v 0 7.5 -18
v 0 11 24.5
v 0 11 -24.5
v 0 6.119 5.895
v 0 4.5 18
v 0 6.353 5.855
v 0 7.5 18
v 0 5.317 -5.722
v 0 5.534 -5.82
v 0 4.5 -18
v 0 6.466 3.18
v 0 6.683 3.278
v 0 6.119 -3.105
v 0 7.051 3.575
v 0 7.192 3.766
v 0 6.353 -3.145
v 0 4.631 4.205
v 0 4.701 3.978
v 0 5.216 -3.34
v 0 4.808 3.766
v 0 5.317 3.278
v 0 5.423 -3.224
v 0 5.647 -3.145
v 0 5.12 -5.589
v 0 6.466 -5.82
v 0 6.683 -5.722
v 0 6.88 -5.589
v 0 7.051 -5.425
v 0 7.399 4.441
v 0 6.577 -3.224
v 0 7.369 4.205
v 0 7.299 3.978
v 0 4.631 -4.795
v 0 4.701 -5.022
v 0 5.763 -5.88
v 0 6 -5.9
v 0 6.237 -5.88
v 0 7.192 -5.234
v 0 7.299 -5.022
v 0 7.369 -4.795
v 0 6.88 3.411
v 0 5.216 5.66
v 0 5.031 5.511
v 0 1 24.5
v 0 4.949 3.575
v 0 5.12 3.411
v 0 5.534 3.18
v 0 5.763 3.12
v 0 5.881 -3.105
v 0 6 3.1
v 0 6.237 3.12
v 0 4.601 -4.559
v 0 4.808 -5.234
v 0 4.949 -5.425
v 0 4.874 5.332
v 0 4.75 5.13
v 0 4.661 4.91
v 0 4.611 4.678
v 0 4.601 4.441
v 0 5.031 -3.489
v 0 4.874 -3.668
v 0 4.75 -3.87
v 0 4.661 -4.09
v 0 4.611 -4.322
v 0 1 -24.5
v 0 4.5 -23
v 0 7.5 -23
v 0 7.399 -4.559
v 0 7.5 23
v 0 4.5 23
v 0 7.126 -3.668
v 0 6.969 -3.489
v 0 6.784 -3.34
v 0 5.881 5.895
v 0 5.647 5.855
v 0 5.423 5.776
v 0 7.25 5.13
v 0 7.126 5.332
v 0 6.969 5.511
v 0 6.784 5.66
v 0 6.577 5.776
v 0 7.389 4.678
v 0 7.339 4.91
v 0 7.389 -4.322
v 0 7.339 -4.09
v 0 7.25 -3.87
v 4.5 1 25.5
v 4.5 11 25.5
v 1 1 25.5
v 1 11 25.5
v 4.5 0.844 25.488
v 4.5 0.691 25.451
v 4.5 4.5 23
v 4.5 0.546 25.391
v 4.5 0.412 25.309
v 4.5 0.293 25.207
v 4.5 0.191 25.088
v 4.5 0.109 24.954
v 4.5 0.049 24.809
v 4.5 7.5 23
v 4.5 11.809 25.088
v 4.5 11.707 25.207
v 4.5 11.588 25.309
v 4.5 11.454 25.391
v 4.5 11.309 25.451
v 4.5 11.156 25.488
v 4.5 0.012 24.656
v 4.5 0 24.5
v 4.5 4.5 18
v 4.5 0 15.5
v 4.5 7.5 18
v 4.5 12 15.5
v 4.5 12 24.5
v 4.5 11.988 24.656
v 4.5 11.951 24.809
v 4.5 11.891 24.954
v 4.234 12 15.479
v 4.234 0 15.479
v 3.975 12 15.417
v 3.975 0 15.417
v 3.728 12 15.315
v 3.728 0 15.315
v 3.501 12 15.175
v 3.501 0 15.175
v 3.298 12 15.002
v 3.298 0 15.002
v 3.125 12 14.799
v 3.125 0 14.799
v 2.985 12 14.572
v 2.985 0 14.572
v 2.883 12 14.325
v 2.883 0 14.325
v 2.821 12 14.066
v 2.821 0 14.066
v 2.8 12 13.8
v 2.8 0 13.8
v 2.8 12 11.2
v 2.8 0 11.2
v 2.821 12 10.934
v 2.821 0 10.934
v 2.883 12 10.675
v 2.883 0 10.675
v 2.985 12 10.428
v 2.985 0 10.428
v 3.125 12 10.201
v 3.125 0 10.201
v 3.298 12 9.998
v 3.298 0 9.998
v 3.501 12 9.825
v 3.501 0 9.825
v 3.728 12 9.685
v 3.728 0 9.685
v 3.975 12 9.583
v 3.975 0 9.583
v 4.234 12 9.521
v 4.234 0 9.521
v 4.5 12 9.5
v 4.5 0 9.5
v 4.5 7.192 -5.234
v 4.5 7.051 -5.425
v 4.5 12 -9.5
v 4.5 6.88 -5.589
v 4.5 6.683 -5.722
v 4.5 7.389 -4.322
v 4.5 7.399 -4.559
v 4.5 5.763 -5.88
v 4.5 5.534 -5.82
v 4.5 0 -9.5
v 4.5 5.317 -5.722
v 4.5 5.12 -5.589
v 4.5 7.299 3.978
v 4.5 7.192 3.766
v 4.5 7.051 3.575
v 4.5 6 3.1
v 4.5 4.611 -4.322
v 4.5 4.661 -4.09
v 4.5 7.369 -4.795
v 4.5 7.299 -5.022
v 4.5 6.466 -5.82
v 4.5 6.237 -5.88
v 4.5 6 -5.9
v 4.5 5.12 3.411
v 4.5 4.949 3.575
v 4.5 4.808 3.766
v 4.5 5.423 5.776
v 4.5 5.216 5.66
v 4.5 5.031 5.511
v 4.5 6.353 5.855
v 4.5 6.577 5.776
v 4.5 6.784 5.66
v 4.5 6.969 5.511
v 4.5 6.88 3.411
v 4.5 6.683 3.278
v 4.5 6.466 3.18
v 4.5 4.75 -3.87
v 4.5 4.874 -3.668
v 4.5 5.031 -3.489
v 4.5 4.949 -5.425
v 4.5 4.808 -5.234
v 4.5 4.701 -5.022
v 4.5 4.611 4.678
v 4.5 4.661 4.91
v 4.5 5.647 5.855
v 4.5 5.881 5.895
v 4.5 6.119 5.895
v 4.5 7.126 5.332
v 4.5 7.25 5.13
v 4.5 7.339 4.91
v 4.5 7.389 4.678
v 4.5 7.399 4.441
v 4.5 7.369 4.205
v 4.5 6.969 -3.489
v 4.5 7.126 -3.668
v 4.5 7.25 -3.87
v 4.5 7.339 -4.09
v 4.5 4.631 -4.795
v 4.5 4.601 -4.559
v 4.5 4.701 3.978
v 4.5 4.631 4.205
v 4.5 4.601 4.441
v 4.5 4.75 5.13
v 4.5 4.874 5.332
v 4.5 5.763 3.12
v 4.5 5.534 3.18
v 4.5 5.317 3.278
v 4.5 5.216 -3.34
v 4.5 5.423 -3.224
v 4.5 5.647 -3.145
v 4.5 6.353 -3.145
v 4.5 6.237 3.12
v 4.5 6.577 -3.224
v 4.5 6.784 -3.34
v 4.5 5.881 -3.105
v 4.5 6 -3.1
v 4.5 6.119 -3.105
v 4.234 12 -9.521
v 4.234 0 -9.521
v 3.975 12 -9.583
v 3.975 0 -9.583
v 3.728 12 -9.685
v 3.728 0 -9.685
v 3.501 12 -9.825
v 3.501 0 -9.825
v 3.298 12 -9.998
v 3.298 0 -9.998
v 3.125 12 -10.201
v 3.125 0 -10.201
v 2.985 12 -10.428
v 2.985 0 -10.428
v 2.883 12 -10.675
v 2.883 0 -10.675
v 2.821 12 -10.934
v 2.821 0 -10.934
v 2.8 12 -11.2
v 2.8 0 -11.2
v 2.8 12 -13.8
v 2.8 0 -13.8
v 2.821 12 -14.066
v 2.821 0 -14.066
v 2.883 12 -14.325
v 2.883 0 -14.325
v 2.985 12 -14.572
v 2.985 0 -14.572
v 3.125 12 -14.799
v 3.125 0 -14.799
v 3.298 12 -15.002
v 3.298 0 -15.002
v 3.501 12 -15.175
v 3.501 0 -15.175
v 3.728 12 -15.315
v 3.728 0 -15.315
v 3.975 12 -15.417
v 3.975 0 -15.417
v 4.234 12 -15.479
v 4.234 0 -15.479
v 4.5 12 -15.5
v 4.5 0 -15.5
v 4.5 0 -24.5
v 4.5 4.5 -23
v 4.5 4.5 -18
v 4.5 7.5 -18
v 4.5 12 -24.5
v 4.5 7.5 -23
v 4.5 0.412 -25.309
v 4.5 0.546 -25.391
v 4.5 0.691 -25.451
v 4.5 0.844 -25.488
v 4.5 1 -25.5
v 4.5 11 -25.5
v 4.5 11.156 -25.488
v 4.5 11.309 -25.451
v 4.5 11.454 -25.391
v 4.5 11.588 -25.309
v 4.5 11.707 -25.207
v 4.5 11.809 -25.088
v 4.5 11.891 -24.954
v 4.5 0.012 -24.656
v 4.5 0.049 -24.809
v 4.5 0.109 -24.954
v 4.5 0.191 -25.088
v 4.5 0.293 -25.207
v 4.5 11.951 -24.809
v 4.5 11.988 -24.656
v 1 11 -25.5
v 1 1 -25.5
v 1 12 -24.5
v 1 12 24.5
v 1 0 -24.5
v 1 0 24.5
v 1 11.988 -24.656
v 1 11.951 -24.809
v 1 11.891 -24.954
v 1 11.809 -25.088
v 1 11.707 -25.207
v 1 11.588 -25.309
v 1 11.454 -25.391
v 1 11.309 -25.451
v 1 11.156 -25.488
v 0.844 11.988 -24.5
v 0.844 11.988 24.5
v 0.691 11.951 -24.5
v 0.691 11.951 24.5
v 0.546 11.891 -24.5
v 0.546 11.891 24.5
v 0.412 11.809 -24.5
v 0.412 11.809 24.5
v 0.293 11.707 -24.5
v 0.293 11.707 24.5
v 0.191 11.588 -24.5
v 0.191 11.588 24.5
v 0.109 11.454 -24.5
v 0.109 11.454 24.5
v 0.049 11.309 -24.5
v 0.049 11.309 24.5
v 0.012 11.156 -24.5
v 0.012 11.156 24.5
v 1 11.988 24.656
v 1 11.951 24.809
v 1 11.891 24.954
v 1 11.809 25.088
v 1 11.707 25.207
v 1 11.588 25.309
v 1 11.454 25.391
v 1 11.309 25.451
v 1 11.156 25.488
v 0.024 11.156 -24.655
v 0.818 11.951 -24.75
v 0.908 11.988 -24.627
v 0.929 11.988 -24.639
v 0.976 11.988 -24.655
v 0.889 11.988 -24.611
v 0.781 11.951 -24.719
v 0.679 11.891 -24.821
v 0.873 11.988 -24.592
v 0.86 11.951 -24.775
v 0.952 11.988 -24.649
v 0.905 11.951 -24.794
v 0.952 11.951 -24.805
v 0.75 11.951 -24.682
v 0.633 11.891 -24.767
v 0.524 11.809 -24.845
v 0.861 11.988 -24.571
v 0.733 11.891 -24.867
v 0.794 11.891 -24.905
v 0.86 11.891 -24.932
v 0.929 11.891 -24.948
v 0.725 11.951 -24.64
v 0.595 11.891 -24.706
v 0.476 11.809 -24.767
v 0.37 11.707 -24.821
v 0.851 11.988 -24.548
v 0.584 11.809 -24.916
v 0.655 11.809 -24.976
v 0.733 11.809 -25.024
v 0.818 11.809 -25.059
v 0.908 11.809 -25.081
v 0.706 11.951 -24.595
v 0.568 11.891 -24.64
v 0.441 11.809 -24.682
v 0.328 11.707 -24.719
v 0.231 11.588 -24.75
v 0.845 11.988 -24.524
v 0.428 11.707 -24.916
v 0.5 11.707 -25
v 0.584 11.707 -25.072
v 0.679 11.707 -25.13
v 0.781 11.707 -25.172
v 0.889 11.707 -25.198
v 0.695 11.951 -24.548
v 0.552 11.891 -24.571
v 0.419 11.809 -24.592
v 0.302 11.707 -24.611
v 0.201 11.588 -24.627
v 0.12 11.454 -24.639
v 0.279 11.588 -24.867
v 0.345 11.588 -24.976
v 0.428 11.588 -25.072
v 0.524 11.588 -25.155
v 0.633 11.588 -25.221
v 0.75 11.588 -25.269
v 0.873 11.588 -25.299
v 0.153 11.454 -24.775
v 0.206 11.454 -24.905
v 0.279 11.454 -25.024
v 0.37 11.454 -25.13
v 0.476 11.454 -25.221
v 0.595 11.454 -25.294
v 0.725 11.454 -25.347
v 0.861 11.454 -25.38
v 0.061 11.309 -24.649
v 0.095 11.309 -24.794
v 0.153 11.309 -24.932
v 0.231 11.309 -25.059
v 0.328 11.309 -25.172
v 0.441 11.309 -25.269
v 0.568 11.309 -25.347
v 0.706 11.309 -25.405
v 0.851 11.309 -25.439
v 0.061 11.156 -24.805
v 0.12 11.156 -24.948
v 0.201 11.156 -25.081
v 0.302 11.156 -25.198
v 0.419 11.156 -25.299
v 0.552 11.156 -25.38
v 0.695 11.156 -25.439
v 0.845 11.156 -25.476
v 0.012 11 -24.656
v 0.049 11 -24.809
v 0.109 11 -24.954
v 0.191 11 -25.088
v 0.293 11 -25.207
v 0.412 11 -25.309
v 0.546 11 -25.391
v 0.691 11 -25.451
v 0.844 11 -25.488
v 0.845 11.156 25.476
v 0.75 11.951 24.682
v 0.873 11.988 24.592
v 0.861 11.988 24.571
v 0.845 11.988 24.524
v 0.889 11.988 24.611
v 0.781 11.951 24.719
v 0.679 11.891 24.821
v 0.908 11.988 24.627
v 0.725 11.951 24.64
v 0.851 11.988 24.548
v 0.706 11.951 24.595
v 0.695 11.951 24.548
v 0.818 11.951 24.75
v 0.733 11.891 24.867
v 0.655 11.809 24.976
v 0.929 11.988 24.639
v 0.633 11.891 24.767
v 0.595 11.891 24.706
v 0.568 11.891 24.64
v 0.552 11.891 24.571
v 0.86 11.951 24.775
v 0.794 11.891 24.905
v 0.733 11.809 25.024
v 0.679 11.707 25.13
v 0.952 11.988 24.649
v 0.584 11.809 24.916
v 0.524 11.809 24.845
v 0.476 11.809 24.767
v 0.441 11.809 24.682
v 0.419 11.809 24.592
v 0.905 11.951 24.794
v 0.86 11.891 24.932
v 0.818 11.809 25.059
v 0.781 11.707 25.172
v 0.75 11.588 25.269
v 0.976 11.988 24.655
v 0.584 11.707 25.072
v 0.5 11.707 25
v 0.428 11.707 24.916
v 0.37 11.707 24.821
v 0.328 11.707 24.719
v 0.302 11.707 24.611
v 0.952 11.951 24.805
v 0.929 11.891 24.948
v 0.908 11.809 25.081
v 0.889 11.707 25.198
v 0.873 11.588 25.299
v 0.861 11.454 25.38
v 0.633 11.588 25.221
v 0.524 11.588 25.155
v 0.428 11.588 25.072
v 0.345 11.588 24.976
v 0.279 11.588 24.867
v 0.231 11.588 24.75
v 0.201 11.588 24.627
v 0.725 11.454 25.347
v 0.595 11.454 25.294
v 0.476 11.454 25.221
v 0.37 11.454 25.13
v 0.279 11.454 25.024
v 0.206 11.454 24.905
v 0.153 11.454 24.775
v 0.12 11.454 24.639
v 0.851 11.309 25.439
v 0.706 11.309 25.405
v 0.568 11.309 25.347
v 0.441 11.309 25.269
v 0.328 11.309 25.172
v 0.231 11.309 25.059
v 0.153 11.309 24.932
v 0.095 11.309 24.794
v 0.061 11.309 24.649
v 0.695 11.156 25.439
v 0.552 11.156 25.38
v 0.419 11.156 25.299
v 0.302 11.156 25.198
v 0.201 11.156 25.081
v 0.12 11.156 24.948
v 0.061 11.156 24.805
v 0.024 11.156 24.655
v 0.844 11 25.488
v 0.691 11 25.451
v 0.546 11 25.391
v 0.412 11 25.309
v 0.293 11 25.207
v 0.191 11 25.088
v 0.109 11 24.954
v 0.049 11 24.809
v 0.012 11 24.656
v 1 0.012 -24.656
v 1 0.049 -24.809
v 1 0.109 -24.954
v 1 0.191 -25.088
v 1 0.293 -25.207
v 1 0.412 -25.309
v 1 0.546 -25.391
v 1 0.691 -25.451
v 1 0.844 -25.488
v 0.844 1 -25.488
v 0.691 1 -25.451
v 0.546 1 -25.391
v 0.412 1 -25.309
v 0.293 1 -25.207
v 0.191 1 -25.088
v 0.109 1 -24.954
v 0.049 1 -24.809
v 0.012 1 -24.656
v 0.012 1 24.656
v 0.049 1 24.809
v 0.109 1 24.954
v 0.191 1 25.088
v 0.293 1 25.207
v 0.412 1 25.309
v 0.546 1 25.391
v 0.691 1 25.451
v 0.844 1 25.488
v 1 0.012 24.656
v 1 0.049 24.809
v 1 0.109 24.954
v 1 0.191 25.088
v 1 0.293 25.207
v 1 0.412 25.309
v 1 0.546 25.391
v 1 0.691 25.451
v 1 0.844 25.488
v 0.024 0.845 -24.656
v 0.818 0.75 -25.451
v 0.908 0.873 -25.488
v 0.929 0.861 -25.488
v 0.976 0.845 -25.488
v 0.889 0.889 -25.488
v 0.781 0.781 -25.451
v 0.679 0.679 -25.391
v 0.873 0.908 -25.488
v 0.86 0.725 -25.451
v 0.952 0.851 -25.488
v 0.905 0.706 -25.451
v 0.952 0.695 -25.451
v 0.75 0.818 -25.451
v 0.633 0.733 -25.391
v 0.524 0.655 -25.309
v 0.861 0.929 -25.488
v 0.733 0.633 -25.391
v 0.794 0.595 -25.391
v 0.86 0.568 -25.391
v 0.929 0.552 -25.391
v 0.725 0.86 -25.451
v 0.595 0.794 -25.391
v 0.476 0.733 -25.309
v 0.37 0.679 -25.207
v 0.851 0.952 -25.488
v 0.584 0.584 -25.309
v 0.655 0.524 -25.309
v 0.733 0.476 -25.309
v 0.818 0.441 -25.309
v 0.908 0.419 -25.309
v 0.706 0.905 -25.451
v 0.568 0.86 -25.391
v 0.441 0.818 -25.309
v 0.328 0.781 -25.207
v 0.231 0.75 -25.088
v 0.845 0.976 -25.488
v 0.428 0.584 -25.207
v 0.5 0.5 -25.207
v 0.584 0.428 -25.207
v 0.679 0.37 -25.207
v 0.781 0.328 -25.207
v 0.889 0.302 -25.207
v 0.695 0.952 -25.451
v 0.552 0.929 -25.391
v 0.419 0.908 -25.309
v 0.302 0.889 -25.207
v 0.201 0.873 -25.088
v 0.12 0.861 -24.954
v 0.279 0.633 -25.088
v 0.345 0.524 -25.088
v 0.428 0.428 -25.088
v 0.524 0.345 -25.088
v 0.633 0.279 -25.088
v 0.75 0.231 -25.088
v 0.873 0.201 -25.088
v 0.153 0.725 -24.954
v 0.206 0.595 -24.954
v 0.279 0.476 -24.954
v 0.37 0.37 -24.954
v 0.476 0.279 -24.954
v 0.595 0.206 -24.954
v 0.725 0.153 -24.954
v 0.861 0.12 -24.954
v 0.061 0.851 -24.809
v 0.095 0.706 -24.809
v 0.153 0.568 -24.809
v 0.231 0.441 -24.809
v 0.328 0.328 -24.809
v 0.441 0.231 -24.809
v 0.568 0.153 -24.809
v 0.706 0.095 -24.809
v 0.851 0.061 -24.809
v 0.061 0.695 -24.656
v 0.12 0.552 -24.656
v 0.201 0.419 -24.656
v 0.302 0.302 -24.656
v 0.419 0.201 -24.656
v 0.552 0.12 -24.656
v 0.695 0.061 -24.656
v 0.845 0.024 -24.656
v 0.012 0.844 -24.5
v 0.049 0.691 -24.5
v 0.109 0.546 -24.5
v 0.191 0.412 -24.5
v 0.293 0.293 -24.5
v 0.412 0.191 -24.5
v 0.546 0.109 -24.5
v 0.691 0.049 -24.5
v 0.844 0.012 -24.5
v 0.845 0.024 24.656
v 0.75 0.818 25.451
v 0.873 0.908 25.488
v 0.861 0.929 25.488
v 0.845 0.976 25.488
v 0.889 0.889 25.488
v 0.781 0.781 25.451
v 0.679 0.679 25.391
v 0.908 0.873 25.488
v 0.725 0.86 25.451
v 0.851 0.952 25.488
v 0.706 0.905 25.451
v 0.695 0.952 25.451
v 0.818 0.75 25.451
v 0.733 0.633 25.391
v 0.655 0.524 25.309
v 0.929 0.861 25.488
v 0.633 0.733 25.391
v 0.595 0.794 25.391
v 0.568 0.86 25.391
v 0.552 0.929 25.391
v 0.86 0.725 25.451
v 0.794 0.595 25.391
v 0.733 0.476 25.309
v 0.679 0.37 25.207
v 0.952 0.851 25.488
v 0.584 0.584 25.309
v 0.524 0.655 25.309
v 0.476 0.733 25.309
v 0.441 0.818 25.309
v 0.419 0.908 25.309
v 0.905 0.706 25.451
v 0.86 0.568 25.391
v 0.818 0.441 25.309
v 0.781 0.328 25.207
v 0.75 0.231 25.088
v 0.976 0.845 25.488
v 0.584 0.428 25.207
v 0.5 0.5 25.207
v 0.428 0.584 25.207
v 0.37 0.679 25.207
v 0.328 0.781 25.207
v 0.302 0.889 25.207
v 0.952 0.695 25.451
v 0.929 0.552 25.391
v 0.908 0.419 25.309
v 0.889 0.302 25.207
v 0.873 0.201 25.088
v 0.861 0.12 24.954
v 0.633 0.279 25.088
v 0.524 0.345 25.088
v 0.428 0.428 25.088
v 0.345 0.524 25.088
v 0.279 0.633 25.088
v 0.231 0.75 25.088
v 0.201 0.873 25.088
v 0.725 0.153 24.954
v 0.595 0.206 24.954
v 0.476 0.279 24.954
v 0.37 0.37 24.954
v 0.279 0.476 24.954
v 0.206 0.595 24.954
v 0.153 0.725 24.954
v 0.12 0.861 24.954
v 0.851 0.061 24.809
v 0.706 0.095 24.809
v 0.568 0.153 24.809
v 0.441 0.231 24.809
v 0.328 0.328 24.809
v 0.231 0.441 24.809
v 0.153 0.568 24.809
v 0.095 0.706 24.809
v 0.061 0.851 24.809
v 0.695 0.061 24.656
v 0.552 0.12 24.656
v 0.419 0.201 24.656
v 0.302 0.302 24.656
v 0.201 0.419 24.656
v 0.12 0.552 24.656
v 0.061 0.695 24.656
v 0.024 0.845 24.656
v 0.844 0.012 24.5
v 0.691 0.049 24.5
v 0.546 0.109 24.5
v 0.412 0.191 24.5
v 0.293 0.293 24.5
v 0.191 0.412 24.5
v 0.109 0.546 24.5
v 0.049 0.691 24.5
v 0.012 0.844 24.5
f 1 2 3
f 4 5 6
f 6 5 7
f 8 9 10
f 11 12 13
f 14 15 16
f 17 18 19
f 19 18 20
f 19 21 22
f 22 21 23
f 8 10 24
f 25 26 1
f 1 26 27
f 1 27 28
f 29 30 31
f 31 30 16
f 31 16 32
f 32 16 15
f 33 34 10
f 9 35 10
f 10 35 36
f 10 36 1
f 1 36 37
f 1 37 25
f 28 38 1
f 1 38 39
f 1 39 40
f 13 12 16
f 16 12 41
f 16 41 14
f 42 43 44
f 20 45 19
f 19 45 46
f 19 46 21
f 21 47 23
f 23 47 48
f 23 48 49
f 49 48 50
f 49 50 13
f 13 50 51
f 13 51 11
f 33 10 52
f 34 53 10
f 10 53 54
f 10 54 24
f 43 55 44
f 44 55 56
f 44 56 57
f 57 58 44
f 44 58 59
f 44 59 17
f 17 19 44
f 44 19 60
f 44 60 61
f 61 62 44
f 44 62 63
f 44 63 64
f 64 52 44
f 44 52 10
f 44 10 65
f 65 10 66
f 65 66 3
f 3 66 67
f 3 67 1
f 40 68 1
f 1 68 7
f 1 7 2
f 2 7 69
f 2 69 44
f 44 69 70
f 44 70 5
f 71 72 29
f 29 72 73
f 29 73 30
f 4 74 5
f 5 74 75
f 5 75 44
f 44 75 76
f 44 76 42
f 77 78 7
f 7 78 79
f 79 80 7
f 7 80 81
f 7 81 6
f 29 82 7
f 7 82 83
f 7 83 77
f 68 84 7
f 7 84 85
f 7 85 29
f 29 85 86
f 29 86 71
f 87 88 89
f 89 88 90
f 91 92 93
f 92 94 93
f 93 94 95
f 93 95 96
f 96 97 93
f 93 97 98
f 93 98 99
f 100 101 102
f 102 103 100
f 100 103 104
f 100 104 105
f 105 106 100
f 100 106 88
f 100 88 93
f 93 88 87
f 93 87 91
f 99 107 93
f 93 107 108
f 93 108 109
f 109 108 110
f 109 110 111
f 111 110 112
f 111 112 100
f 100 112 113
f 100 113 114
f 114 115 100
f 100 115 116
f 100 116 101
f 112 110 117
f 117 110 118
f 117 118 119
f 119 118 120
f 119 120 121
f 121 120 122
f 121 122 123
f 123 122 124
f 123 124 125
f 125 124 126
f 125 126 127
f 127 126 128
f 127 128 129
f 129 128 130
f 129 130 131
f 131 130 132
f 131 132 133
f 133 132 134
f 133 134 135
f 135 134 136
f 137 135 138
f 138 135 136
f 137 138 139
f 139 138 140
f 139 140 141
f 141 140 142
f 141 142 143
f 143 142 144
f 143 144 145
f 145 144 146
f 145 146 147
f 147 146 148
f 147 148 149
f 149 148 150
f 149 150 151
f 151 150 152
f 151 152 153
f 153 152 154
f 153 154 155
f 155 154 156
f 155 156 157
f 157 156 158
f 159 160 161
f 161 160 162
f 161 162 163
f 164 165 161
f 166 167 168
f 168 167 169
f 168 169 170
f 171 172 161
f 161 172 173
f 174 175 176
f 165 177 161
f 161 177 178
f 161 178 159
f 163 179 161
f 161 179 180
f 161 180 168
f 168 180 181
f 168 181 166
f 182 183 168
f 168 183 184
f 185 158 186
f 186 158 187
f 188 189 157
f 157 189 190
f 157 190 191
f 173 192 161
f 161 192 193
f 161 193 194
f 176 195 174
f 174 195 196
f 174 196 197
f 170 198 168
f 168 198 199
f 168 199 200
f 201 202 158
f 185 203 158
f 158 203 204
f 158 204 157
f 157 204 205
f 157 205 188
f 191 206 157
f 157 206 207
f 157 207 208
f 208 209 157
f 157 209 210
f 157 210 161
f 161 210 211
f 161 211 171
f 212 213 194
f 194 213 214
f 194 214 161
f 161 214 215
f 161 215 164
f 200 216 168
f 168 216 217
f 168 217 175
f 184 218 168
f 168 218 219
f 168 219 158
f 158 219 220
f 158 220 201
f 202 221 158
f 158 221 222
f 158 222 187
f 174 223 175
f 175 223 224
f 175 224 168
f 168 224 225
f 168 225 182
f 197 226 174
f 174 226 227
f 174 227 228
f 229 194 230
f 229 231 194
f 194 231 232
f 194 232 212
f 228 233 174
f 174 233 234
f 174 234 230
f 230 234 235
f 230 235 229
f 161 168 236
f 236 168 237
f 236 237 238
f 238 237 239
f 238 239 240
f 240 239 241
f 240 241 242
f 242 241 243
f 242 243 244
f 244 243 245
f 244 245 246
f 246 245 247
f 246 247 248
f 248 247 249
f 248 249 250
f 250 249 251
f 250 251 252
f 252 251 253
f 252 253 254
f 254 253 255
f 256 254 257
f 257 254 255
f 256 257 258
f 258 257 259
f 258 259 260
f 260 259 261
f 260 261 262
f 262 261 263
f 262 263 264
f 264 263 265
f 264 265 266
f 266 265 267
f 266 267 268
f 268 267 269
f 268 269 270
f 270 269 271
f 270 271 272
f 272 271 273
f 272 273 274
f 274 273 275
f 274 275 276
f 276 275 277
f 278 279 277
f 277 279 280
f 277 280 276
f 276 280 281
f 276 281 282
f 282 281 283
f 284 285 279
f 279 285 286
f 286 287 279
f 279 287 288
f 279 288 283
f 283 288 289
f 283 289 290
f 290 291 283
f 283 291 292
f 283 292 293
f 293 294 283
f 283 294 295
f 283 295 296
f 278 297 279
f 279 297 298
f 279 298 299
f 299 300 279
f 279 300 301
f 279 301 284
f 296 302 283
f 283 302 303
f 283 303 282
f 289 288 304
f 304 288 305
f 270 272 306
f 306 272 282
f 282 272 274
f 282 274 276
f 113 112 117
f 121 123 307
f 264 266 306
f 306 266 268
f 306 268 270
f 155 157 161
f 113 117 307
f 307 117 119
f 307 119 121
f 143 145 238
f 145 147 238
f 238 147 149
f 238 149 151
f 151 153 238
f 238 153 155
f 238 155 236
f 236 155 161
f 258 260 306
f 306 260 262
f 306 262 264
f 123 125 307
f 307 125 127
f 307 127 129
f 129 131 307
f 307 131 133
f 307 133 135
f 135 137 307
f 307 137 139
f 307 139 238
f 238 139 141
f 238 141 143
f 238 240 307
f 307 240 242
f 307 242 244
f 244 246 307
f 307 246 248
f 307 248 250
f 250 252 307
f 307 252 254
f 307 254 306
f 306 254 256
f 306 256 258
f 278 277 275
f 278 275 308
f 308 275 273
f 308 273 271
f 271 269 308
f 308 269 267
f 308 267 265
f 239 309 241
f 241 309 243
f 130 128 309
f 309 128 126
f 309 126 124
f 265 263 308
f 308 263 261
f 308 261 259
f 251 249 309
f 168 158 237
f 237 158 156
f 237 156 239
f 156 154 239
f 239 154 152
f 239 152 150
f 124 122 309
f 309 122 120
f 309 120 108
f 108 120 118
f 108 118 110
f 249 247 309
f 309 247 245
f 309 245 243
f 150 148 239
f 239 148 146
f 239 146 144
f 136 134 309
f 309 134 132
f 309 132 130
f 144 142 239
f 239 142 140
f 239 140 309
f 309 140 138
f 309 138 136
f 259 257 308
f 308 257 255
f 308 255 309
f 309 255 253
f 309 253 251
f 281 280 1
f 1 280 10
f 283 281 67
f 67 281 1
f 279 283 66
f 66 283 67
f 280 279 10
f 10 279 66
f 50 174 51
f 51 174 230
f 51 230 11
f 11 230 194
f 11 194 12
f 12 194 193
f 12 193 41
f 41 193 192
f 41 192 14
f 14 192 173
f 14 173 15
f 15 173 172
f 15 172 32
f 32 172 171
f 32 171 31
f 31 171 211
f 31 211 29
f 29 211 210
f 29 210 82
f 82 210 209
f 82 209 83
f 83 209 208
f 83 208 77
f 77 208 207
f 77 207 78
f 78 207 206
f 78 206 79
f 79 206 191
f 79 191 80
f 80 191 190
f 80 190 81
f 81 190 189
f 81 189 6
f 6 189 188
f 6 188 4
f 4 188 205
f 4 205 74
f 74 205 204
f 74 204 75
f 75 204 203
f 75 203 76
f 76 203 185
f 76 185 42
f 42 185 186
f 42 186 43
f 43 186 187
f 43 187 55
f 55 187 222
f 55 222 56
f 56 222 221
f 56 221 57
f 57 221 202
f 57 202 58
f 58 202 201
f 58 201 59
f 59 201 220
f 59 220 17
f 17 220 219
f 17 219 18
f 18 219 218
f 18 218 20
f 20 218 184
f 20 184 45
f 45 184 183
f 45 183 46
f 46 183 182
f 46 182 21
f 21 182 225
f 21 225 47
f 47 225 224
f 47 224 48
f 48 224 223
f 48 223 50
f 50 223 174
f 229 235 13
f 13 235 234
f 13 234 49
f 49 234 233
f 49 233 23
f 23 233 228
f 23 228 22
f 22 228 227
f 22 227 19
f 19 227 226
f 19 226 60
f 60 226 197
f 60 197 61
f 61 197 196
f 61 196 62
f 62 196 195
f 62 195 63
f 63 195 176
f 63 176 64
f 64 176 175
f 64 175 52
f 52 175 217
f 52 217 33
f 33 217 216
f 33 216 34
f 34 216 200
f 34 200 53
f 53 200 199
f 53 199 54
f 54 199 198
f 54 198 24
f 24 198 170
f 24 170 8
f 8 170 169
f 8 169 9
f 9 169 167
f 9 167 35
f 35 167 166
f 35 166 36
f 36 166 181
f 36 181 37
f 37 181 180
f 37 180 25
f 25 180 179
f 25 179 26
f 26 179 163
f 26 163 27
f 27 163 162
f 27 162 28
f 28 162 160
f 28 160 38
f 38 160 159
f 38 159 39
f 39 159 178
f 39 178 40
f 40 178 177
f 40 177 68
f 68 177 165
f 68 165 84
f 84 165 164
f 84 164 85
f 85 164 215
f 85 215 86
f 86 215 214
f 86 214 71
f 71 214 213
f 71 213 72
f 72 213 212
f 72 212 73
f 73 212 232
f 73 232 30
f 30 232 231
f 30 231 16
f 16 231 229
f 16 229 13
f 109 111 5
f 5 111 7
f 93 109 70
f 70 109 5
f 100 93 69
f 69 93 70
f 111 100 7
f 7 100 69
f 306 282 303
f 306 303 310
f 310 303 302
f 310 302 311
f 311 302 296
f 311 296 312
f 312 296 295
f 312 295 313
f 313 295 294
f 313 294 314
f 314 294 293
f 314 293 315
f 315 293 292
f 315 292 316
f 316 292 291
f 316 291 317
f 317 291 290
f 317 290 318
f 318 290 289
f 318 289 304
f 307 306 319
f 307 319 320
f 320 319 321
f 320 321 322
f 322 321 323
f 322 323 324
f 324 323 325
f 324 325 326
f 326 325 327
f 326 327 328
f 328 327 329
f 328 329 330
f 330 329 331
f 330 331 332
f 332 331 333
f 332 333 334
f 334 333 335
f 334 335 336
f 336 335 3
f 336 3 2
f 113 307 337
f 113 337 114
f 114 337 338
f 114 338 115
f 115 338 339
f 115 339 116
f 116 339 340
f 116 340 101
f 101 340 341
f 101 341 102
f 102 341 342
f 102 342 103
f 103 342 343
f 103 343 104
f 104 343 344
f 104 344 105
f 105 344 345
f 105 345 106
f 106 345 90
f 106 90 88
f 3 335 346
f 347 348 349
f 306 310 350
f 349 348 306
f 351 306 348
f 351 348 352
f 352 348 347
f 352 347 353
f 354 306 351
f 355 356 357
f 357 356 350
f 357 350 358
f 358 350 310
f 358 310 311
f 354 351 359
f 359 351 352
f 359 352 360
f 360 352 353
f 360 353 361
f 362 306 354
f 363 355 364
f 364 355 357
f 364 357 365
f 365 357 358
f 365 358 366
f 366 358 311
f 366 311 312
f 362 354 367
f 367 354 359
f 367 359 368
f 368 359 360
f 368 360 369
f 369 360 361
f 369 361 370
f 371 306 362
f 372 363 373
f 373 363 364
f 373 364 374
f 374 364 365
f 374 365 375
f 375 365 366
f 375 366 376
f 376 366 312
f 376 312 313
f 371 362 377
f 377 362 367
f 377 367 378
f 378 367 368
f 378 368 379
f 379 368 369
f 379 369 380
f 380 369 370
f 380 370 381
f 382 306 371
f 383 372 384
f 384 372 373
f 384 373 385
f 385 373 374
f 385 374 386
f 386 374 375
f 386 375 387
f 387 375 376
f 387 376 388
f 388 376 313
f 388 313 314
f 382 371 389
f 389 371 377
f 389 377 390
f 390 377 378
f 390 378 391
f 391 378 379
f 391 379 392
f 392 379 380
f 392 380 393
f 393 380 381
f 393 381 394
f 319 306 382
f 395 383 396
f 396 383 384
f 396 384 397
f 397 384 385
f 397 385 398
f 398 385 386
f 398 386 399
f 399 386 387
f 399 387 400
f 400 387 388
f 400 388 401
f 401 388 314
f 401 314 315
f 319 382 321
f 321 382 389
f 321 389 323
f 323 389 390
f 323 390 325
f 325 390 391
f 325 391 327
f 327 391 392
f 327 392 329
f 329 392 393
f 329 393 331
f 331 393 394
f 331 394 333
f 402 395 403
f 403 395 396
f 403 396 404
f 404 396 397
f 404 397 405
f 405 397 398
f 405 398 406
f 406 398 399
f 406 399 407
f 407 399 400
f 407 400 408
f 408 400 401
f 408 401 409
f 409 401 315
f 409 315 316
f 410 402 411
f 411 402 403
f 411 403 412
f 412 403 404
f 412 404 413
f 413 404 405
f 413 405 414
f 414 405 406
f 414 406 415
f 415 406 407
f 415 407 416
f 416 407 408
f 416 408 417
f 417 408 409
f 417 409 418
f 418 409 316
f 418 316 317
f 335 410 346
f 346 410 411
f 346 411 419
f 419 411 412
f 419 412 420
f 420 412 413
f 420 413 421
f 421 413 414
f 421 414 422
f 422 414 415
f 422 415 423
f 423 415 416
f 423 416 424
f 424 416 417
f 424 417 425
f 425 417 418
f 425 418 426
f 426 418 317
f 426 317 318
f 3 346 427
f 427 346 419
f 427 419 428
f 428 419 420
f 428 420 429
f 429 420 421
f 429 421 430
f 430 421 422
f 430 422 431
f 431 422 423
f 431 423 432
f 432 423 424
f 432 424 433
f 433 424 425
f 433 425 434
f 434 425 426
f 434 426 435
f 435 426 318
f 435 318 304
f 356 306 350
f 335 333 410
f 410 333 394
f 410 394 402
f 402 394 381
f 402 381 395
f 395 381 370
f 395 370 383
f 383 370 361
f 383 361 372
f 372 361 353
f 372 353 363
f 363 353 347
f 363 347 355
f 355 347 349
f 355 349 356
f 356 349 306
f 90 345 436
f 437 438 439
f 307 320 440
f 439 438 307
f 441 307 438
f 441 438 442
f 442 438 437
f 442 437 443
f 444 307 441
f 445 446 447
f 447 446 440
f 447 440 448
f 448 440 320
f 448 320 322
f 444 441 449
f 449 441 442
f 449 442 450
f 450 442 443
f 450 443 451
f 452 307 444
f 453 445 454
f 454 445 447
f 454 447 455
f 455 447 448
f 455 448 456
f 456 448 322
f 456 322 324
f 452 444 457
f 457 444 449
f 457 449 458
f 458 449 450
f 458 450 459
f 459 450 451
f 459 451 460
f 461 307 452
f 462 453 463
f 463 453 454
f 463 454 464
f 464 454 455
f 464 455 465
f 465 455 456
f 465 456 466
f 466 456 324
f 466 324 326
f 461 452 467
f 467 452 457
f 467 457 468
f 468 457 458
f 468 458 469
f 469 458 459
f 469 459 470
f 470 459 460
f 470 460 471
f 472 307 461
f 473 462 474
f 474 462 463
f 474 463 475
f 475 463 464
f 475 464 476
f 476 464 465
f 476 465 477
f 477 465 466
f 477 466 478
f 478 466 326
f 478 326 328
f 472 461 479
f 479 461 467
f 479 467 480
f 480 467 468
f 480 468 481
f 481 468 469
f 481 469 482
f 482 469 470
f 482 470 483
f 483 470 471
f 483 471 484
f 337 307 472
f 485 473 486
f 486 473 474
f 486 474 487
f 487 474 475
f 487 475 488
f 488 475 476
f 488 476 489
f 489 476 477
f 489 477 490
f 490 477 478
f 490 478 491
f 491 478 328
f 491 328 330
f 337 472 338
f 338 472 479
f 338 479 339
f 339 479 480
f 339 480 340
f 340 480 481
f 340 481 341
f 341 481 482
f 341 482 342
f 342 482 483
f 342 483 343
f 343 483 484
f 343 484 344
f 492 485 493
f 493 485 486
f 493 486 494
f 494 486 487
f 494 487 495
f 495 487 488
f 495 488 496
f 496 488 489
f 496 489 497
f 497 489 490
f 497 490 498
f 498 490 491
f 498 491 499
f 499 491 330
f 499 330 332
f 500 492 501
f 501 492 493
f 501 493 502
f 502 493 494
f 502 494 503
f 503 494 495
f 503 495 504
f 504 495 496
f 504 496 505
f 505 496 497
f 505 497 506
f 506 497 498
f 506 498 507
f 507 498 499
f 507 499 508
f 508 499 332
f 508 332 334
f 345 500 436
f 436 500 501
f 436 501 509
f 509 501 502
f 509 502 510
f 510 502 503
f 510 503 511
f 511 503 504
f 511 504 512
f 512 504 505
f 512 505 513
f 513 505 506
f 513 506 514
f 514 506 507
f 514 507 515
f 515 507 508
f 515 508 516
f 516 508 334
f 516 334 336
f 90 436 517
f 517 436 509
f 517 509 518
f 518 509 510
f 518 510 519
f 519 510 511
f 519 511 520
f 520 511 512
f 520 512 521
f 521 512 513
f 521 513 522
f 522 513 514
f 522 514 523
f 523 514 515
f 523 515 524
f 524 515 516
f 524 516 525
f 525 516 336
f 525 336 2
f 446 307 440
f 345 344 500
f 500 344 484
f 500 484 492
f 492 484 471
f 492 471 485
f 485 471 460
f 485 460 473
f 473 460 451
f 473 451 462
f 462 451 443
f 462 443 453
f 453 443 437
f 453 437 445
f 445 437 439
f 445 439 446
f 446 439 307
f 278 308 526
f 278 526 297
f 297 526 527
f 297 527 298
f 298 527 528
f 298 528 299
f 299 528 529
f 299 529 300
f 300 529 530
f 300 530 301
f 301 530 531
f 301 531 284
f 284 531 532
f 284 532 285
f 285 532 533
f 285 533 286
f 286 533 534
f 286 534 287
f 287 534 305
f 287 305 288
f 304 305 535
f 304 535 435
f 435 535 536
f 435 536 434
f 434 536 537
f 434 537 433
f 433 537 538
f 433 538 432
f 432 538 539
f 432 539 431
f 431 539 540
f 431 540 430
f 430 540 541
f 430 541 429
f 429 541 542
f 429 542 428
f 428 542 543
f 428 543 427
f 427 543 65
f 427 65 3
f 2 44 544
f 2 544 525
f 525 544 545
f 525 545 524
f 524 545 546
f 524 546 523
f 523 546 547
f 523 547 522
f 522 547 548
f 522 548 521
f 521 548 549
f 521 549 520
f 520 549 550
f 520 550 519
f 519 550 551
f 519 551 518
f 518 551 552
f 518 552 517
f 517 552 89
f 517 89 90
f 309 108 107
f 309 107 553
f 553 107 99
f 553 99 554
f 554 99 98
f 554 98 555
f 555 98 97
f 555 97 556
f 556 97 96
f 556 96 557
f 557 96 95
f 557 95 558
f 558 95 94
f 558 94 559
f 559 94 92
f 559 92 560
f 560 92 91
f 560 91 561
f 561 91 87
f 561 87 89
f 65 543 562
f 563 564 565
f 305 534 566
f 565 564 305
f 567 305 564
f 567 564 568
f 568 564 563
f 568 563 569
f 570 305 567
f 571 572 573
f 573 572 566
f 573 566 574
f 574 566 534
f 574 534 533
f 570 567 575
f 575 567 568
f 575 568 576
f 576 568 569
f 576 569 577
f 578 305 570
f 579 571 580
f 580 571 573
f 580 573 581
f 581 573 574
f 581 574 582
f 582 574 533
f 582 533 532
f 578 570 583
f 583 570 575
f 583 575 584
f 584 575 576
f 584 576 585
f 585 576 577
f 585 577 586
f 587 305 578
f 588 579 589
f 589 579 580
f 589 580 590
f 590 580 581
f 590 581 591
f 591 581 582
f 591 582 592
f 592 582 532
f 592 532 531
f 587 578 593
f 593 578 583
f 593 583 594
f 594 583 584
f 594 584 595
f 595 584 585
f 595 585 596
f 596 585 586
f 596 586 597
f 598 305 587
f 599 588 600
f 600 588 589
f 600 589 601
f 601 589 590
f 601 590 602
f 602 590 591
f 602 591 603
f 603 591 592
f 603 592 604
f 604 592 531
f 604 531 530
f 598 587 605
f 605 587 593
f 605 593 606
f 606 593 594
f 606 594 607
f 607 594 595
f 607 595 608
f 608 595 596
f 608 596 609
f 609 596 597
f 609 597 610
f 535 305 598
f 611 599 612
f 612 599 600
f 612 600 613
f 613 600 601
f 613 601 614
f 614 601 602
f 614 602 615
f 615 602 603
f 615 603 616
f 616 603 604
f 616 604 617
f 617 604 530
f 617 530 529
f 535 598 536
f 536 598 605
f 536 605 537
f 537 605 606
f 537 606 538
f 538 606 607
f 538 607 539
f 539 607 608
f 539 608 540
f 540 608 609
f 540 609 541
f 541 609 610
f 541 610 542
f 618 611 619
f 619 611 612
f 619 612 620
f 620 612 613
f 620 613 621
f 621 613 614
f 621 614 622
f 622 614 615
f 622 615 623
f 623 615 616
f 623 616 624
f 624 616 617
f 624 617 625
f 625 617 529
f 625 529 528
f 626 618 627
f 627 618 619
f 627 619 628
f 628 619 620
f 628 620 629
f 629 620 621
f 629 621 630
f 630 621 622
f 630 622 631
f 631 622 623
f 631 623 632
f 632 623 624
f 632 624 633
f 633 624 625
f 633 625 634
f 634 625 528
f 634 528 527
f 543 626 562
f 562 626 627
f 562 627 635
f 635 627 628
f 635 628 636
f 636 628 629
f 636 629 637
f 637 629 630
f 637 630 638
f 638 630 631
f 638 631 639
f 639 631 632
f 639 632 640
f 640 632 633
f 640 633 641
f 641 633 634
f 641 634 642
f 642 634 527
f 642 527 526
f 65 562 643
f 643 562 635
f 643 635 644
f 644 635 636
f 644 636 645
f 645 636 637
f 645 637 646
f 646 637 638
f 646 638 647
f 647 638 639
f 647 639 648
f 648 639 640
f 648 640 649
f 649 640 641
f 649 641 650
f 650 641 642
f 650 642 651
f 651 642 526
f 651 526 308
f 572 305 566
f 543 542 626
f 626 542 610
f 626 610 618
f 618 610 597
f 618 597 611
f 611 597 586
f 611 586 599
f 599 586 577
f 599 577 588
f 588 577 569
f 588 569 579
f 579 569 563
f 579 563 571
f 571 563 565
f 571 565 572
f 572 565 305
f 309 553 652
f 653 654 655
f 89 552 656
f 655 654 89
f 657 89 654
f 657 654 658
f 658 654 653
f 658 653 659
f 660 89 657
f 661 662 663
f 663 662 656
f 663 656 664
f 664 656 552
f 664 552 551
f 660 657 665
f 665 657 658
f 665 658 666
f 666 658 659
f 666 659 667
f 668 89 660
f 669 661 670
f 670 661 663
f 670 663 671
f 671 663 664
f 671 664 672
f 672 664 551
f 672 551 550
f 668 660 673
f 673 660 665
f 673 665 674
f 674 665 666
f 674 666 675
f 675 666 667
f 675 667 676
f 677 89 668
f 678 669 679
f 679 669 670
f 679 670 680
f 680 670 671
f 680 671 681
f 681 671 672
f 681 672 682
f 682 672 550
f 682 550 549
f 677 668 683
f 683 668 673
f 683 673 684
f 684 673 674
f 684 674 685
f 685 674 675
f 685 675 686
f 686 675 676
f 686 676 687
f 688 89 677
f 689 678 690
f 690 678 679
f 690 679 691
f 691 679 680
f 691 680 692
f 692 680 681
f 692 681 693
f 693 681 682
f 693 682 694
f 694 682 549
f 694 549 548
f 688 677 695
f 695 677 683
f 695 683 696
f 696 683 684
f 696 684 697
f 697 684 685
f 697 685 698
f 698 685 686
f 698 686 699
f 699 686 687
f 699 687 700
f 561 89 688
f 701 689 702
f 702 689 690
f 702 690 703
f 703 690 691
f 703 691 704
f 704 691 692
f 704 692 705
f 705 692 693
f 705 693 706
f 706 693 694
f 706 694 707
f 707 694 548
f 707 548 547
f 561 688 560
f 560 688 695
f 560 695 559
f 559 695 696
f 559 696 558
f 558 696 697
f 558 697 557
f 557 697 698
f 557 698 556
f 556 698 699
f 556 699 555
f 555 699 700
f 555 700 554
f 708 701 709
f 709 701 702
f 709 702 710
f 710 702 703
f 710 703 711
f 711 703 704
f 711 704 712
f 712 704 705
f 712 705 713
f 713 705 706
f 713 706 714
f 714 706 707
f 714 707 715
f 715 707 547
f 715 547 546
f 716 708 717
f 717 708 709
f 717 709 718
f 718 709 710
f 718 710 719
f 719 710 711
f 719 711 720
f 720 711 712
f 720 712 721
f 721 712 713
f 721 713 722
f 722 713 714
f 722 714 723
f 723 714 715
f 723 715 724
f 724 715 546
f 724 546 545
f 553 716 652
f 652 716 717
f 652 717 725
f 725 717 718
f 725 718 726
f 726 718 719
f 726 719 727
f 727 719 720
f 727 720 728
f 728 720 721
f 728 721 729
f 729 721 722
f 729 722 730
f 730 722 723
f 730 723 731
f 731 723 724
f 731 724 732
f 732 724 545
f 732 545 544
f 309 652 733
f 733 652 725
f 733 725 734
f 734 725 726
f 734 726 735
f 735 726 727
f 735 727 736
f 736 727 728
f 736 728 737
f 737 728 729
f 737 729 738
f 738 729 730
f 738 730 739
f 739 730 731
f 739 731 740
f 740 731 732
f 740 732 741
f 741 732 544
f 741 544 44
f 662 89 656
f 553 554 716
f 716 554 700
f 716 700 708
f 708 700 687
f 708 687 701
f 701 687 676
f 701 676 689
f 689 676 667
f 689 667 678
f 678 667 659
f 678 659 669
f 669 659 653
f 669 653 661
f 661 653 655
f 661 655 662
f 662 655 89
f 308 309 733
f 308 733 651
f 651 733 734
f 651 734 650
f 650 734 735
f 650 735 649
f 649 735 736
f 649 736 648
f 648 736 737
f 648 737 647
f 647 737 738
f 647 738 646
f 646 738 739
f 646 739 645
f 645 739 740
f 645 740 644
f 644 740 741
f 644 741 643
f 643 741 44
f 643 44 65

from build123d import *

# Parameters (mm, degrees)
BASE_DEPTH                 = 12
SCREWS_ZIP_TIE_HOLES_REACH = 30.539
SKETCH2_R                  = 1.4
SKETCH2_W                  = 5
SKETCH2_H                  = 3
F_1MM_EDGE_FILLETS_R       = 1


with BuildPart() as part:
    # Sketch1 → Base (new body)
    with BuildSketch(Plane(origin=(0, 0, 0), x_dir=(1, 0, 0), z_dir=(0, 1, 0))):
        with BuildLine():
            Line((4.5, 25.5), (4.5, 15.5))
            ThreePointArc((4.5, 15.5), (3.297918472, 15.002081528), (2.8, 13.8))
            Line((2.8, 13.8), (2.8, 11.2))
            ThreePointArc((2.8, 11.2), (3.297918472, 9.997918472), (4.5, 9.5))
            Line((4.5, 9.5), (4.5, -9.5))
            ThreePointArc((4.5, -9.5), (3.297918472, -9.997918472), (2.8, -11.2))
            Line((2.8, -11.2), (2.8, -13.8))
            ThreePointArc((2.8, -13.8), (3.297918472, -15.002081528), (4.5, -15.5))
            Line((4.5, -15.5), (4.5, -25.5))
            Line((4.5, -25.5), (0, -25.5))
            Line((0, -25.5), (0, 25.5))
            Line((0, 25.5), (4.5, 25.5))
        make_face()
    extrude(amount=BASE_DEPTH)

    # Sketch2 → Screws _ Zip Tie Holes (cut, up to next)
    with BuildSketch(Plane(origin=(4.5, 0, 0), x_dir=(0, 0, -1), z_dir=(1, 0, 0)), mode=Mode.PRIVATE) as screws_zip_tie_holes_sk1:
        with Locations((-4.5, 6)):
            Circle(SKETCH2_R)
    screws_zip_tie_holes_tool1 = extrude(screws_zip_tie_holes_sk1.sketch, amount=-SCREWS_ZIP_TIE_HOLES_REACH, mode=Mode.PRIVATE) & part.part
    # Sketch2 → Screws _ Zip Tie Holes (cut, up to next)
    with BuildSketch(Plane(origin=(4.5, 0, 0), x_dir=(0, 0, -1), z_dir=(1, 0, 0)), mode=Mode.PRIVATE) as screws_zip_tie_holes_sk2:
        with Locations((4.5, 6)):
            Circle(SKETCH2_R)
    screws_zip_tie_holes_tool2 = extrude(screws_zip_tie_holes_sk2.sketch, amount=-SCREWS_ZIP_TIE_HOLES_REACH, mode=Mode.PRIVATE) & part.part
    # Sketch2 → Screws _ Zip Tie Holes (cut, up to next)
    with BuildSketch(Plane(origin=(4.5, 0, 0), x_dir=(0, 0, -1), z_dir=(1, 0, 0)), mode=Mode.PRIVATE) as screws_zip_tie_holes_sk3:
        with Locations((20.5, 6)):
            Rectangle(SKETCH2_W, SKETCH2_H)
    screws_zip_tie_holes_tool3 = extrude(screws_zip_tie_holes_sk3.sketch, amount=-SCREWS_ZIP_TIE_HOLES_REACH, mode=Mode.PRIVATE) & part.part
    # Sketch2 → Screws _ Zip Tie Holes (cut, up to next)
    with BuildSketch(Plane(origin=(4.5, 0, 0), x_dir=(0, 0, -1), z_dir=(1, 0, 0)), mode=Mode.PRIVATE) as screws_zip_tie_holes_sk4:
        with Locations((-20.5, 6)):
            Rectangle(SKETCH2_W, SKETCH2_H)
    screws_zip_tie_holes_tool4 = extrude(screws_zip_tie_holes_sk4.sketch, amount=-SCREWS_ZIP_TIE_HOLES_REACH, mode=Mode.PRIVATE) & part.part
    add(screws_zip_tie_holes_tool1.solids().sort_by_distance((4.5, 6, 4.5))[0], mode=Mode.SUBTRACT)
    add(screws_zip_tie_holes_tool2.solids().sort_by_distance((4.5, 6, -4.5))[0], mode=Mode.SUBTRACT)
    add(screws_zip_tie_holes_tool3.solids().sort_by_distance((4.5, 6, -20.5))[0], mode=Mode.SUBTRACT)
    add(screws_zip_tie_holes_tool4.solids().sort_by_distance((4.5, 6, 20.5))[0], mode=Mode.SUBTRACT)

    # 1mm Edge Fillets
    f_1mm_edge_fillets_edges = [part.edges().sort_by_distance(p)[0] for p in [
        (2.25, 0, -25.5),
        (2.25, 0, 25.5),
        (0, 0, 0),
        (0, 6, -25.5),
        (0, 6, 25.5),
        (2.25, 12, -25.5),
        (0, 12, 0),
        (2.25, 12, 25.5),
    ]]
    fillet(f_1mm_edge_fillets_edges, radius=F_1MM_EDGE_FILLETS_R)


solid = part.part
